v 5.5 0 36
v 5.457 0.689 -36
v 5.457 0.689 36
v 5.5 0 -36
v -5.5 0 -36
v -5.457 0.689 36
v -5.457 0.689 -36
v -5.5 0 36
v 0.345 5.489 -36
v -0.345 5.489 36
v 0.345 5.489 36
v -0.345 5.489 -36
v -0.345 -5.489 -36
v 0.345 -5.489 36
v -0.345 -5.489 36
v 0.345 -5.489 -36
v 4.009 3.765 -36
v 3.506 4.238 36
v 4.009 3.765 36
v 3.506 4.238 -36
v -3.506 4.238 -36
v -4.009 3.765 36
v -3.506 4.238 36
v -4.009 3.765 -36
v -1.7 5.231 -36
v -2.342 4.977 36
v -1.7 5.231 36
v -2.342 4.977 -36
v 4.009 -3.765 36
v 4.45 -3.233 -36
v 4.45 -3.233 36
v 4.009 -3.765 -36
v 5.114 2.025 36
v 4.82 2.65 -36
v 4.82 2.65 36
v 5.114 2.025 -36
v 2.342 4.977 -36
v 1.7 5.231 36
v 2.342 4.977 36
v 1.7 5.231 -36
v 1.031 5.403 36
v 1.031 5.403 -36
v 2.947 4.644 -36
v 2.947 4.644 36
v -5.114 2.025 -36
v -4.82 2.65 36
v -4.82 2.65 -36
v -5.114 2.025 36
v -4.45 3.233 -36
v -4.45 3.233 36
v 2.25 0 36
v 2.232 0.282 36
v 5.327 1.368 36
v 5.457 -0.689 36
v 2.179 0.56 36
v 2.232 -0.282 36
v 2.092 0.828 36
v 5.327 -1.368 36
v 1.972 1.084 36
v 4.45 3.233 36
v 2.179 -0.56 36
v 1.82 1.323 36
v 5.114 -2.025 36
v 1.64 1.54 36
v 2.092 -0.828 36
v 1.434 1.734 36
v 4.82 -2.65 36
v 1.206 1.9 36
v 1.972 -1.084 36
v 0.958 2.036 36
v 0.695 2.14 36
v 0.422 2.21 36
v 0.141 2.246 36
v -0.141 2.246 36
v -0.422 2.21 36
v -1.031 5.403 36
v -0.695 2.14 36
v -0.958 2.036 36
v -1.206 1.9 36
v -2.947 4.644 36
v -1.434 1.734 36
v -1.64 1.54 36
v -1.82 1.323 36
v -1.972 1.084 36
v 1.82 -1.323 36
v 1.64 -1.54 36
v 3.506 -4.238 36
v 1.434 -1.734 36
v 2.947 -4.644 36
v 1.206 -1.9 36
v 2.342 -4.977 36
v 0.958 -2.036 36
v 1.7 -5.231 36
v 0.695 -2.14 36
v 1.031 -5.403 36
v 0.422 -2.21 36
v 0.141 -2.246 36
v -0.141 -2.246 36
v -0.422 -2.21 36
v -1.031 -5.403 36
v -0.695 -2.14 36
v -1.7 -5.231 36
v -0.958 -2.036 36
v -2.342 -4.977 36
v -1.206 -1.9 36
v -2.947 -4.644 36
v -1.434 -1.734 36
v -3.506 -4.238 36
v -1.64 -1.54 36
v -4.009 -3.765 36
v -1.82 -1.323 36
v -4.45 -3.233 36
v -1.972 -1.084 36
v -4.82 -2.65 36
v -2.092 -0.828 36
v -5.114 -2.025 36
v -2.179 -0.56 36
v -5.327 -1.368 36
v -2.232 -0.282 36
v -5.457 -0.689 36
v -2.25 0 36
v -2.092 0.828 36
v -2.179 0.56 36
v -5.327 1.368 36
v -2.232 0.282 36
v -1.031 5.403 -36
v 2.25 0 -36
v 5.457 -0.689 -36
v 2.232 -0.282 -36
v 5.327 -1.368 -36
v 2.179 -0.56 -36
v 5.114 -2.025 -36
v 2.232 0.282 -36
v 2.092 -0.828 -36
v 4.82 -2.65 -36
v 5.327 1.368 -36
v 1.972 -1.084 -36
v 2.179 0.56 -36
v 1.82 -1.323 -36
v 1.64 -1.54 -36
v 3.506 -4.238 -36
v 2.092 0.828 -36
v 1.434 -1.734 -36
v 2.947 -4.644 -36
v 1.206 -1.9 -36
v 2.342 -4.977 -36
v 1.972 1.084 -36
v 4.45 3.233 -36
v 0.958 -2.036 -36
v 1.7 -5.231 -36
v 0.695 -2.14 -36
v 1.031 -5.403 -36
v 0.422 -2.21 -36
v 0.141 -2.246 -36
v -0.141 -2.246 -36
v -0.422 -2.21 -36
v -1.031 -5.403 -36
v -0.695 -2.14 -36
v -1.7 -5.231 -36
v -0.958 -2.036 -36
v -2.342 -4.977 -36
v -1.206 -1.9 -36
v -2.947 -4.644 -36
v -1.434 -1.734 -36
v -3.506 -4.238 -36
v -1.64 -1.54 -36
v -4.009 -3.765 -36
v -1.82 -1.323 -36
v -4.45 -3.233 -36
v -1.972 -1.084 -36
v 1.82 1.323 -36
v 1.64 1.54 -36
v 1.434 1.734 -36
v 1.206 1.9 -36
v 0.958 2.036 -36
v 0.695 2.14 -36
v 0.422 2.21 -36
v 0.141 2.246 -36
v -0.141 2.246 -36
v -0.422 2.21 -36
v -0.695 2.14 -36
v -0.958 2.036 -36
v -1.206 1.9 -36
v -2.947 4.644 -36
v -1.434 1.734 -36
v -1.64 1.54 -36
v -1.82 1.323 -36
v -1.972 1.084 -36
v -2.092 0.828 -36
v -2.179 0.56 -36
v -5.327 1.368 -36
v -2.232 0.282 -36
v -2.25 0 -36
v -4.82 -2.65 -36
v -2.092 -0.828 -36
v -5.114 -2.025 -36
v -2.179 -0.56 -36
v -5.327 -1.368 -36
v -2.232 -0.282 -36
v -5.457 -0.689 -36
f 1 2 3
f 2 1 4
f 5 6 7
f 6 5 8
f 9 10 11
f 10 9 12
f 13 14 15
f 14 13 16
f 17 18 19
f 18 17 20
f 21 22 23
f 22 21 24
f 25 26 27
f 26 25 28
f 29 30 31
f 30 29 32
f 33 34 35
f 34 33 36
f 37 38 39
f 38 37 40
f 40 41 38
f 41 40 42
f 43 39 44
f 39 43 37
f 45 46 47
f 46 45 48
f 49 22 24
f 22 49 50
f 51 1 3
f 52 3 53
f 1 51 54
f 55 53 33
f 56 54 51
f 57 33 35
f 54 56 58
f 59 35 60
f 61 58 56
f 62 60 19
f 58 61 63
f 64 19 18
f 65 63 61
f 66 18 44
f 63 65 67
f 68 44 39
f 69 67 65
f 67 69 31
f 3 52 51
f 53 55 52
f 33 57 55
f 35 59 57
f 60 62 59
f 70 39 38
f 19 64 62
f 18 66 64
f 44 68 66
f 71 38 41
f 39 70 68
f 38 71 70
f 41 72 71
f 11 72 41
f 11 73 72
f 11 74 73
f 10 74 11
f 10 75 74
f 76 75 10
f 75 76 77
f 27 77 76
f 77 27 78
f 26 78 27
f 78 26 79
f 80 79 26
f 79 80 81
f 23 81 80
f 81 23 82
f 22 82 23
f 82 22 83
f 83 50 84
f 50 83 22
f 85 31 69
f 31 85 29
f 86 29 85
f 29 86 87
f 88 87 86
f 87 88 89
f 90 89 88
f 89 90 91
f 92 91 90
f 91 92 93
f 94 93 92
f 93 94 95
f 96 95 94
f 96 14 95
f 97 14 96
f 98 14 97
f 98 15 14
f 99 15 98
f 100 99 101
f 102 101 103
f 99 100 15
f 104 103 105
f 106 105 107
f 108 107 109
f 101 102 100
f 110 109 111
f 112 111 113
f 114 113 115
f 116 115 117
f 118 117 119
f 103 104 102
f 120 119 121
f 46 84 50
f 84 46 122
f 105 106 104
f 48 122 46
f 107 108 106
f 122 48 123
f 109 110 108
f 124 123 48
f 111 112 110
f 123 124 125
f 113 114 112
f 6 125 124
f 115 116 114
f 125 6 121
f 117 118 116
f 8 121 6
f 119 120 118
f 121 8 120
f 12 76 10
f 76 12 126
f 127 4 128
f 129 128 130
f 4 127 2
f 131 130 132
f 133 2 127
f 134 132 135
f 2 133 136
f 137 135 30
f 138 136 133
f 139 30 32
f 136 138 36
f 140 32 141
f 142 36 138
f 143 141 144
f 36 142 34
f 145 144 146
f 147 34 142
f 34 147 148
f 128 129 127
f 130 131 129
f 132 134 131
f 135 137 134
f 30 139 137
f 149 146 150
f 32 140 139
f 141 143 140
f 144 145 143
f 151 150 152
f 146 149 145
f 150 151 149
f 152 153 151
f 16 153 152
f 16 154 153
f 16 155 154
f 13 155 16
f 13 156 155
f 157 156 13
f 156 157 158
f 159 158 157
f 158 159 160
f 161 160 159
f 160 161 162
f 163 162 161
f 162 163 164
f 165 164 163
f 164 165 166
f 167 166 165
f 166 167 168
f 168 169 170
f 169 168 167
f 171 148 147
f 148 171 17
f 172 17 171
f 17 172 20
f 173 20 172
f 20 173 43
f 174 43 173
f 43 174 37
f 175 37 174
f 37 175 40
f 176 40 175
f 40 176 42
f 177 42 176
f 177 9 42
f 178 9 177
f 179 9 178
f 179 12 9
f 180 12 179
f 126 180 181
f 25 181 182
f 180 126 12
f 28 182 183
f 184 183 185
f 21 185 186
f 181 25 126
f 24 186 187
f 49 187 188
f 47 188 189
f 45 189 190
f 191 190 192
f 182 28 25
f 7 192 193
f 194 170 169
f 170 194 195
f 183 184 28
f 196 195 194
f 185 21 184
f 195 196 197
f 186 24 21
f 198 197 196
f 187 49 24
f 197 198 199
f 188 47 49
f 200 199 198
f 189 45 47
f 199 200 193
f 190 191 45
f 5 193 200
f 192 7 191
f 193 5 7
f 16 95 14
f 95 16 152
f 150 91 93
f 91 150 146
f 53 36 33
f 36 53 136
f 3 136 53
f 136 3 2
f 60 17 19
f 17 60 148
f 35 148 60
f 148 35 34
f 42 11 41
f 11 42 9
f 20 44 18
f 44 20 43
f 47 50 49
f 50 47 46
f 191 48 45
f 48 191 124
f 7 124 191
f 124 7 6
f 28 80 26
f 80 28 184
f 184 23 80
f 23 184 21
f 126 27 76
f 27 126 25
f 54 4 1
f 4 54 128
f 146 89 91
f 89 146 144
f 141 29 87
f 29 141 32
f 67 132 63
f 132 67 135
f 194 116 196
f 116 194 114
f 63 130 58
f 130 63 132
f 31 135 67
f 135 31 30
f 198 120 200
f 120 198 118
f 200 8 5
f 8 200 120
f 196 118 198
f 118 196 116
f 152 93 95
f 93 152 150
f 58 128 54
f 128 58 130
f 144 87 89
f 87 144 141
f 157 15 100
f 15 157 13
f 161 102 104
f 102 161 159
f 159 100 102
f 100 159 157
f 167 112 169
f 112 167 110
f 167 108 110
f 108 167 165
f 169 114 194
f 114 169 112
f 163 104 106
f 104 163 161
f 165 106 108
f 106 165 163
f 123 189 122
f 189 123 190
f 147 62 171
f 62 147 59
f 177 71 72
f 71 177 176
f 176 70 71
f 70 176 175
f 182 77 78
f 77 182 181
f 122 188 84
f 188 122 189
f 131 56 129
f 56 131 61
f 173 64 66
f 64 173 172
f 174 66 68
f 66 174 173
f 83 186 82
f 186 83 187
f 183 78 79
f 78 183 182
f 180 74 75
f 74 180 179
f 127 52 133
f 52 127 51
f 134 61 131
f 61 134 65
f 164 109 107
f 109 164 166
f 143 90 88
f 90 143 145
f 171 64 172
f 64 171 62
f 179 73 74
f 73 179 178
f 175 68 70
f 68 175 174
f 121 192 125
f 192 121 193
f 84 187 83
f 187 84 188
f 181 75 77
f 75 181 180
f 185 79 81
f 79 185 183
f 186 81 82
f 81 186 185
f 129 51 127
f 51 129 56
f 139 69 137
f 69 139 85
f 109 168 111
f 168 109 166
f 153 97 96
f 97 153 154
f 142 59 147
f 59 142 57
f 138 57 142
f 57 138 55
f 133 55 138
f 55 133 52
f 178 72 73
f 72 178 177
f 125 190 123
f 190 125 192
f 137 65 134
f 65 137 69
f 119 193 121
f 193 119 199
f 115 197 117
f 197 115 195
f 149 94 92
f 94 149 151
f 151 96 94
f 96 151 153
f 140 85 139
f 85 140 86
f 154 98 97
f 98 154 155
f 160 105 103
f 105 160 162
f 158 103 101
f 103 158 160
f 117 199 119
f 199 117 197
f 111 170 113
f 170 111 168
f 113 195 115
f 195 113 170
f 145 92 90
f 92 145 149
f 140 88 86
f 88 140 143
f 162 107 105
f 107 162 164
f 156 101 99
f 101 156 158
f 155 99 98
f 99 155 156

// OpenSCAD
$fn = 50;


difference() {
	union() {
		translate(v = [0, 0, -36.0000000000]) {
			cylinder(h = 72, r = 5.5000000000);
		}
	}
	union() {
		translate(v = [0, 0, -100.0000000000]) {
			cylinder(h = 200, r = 2.2500000000);
		}
	}
}
